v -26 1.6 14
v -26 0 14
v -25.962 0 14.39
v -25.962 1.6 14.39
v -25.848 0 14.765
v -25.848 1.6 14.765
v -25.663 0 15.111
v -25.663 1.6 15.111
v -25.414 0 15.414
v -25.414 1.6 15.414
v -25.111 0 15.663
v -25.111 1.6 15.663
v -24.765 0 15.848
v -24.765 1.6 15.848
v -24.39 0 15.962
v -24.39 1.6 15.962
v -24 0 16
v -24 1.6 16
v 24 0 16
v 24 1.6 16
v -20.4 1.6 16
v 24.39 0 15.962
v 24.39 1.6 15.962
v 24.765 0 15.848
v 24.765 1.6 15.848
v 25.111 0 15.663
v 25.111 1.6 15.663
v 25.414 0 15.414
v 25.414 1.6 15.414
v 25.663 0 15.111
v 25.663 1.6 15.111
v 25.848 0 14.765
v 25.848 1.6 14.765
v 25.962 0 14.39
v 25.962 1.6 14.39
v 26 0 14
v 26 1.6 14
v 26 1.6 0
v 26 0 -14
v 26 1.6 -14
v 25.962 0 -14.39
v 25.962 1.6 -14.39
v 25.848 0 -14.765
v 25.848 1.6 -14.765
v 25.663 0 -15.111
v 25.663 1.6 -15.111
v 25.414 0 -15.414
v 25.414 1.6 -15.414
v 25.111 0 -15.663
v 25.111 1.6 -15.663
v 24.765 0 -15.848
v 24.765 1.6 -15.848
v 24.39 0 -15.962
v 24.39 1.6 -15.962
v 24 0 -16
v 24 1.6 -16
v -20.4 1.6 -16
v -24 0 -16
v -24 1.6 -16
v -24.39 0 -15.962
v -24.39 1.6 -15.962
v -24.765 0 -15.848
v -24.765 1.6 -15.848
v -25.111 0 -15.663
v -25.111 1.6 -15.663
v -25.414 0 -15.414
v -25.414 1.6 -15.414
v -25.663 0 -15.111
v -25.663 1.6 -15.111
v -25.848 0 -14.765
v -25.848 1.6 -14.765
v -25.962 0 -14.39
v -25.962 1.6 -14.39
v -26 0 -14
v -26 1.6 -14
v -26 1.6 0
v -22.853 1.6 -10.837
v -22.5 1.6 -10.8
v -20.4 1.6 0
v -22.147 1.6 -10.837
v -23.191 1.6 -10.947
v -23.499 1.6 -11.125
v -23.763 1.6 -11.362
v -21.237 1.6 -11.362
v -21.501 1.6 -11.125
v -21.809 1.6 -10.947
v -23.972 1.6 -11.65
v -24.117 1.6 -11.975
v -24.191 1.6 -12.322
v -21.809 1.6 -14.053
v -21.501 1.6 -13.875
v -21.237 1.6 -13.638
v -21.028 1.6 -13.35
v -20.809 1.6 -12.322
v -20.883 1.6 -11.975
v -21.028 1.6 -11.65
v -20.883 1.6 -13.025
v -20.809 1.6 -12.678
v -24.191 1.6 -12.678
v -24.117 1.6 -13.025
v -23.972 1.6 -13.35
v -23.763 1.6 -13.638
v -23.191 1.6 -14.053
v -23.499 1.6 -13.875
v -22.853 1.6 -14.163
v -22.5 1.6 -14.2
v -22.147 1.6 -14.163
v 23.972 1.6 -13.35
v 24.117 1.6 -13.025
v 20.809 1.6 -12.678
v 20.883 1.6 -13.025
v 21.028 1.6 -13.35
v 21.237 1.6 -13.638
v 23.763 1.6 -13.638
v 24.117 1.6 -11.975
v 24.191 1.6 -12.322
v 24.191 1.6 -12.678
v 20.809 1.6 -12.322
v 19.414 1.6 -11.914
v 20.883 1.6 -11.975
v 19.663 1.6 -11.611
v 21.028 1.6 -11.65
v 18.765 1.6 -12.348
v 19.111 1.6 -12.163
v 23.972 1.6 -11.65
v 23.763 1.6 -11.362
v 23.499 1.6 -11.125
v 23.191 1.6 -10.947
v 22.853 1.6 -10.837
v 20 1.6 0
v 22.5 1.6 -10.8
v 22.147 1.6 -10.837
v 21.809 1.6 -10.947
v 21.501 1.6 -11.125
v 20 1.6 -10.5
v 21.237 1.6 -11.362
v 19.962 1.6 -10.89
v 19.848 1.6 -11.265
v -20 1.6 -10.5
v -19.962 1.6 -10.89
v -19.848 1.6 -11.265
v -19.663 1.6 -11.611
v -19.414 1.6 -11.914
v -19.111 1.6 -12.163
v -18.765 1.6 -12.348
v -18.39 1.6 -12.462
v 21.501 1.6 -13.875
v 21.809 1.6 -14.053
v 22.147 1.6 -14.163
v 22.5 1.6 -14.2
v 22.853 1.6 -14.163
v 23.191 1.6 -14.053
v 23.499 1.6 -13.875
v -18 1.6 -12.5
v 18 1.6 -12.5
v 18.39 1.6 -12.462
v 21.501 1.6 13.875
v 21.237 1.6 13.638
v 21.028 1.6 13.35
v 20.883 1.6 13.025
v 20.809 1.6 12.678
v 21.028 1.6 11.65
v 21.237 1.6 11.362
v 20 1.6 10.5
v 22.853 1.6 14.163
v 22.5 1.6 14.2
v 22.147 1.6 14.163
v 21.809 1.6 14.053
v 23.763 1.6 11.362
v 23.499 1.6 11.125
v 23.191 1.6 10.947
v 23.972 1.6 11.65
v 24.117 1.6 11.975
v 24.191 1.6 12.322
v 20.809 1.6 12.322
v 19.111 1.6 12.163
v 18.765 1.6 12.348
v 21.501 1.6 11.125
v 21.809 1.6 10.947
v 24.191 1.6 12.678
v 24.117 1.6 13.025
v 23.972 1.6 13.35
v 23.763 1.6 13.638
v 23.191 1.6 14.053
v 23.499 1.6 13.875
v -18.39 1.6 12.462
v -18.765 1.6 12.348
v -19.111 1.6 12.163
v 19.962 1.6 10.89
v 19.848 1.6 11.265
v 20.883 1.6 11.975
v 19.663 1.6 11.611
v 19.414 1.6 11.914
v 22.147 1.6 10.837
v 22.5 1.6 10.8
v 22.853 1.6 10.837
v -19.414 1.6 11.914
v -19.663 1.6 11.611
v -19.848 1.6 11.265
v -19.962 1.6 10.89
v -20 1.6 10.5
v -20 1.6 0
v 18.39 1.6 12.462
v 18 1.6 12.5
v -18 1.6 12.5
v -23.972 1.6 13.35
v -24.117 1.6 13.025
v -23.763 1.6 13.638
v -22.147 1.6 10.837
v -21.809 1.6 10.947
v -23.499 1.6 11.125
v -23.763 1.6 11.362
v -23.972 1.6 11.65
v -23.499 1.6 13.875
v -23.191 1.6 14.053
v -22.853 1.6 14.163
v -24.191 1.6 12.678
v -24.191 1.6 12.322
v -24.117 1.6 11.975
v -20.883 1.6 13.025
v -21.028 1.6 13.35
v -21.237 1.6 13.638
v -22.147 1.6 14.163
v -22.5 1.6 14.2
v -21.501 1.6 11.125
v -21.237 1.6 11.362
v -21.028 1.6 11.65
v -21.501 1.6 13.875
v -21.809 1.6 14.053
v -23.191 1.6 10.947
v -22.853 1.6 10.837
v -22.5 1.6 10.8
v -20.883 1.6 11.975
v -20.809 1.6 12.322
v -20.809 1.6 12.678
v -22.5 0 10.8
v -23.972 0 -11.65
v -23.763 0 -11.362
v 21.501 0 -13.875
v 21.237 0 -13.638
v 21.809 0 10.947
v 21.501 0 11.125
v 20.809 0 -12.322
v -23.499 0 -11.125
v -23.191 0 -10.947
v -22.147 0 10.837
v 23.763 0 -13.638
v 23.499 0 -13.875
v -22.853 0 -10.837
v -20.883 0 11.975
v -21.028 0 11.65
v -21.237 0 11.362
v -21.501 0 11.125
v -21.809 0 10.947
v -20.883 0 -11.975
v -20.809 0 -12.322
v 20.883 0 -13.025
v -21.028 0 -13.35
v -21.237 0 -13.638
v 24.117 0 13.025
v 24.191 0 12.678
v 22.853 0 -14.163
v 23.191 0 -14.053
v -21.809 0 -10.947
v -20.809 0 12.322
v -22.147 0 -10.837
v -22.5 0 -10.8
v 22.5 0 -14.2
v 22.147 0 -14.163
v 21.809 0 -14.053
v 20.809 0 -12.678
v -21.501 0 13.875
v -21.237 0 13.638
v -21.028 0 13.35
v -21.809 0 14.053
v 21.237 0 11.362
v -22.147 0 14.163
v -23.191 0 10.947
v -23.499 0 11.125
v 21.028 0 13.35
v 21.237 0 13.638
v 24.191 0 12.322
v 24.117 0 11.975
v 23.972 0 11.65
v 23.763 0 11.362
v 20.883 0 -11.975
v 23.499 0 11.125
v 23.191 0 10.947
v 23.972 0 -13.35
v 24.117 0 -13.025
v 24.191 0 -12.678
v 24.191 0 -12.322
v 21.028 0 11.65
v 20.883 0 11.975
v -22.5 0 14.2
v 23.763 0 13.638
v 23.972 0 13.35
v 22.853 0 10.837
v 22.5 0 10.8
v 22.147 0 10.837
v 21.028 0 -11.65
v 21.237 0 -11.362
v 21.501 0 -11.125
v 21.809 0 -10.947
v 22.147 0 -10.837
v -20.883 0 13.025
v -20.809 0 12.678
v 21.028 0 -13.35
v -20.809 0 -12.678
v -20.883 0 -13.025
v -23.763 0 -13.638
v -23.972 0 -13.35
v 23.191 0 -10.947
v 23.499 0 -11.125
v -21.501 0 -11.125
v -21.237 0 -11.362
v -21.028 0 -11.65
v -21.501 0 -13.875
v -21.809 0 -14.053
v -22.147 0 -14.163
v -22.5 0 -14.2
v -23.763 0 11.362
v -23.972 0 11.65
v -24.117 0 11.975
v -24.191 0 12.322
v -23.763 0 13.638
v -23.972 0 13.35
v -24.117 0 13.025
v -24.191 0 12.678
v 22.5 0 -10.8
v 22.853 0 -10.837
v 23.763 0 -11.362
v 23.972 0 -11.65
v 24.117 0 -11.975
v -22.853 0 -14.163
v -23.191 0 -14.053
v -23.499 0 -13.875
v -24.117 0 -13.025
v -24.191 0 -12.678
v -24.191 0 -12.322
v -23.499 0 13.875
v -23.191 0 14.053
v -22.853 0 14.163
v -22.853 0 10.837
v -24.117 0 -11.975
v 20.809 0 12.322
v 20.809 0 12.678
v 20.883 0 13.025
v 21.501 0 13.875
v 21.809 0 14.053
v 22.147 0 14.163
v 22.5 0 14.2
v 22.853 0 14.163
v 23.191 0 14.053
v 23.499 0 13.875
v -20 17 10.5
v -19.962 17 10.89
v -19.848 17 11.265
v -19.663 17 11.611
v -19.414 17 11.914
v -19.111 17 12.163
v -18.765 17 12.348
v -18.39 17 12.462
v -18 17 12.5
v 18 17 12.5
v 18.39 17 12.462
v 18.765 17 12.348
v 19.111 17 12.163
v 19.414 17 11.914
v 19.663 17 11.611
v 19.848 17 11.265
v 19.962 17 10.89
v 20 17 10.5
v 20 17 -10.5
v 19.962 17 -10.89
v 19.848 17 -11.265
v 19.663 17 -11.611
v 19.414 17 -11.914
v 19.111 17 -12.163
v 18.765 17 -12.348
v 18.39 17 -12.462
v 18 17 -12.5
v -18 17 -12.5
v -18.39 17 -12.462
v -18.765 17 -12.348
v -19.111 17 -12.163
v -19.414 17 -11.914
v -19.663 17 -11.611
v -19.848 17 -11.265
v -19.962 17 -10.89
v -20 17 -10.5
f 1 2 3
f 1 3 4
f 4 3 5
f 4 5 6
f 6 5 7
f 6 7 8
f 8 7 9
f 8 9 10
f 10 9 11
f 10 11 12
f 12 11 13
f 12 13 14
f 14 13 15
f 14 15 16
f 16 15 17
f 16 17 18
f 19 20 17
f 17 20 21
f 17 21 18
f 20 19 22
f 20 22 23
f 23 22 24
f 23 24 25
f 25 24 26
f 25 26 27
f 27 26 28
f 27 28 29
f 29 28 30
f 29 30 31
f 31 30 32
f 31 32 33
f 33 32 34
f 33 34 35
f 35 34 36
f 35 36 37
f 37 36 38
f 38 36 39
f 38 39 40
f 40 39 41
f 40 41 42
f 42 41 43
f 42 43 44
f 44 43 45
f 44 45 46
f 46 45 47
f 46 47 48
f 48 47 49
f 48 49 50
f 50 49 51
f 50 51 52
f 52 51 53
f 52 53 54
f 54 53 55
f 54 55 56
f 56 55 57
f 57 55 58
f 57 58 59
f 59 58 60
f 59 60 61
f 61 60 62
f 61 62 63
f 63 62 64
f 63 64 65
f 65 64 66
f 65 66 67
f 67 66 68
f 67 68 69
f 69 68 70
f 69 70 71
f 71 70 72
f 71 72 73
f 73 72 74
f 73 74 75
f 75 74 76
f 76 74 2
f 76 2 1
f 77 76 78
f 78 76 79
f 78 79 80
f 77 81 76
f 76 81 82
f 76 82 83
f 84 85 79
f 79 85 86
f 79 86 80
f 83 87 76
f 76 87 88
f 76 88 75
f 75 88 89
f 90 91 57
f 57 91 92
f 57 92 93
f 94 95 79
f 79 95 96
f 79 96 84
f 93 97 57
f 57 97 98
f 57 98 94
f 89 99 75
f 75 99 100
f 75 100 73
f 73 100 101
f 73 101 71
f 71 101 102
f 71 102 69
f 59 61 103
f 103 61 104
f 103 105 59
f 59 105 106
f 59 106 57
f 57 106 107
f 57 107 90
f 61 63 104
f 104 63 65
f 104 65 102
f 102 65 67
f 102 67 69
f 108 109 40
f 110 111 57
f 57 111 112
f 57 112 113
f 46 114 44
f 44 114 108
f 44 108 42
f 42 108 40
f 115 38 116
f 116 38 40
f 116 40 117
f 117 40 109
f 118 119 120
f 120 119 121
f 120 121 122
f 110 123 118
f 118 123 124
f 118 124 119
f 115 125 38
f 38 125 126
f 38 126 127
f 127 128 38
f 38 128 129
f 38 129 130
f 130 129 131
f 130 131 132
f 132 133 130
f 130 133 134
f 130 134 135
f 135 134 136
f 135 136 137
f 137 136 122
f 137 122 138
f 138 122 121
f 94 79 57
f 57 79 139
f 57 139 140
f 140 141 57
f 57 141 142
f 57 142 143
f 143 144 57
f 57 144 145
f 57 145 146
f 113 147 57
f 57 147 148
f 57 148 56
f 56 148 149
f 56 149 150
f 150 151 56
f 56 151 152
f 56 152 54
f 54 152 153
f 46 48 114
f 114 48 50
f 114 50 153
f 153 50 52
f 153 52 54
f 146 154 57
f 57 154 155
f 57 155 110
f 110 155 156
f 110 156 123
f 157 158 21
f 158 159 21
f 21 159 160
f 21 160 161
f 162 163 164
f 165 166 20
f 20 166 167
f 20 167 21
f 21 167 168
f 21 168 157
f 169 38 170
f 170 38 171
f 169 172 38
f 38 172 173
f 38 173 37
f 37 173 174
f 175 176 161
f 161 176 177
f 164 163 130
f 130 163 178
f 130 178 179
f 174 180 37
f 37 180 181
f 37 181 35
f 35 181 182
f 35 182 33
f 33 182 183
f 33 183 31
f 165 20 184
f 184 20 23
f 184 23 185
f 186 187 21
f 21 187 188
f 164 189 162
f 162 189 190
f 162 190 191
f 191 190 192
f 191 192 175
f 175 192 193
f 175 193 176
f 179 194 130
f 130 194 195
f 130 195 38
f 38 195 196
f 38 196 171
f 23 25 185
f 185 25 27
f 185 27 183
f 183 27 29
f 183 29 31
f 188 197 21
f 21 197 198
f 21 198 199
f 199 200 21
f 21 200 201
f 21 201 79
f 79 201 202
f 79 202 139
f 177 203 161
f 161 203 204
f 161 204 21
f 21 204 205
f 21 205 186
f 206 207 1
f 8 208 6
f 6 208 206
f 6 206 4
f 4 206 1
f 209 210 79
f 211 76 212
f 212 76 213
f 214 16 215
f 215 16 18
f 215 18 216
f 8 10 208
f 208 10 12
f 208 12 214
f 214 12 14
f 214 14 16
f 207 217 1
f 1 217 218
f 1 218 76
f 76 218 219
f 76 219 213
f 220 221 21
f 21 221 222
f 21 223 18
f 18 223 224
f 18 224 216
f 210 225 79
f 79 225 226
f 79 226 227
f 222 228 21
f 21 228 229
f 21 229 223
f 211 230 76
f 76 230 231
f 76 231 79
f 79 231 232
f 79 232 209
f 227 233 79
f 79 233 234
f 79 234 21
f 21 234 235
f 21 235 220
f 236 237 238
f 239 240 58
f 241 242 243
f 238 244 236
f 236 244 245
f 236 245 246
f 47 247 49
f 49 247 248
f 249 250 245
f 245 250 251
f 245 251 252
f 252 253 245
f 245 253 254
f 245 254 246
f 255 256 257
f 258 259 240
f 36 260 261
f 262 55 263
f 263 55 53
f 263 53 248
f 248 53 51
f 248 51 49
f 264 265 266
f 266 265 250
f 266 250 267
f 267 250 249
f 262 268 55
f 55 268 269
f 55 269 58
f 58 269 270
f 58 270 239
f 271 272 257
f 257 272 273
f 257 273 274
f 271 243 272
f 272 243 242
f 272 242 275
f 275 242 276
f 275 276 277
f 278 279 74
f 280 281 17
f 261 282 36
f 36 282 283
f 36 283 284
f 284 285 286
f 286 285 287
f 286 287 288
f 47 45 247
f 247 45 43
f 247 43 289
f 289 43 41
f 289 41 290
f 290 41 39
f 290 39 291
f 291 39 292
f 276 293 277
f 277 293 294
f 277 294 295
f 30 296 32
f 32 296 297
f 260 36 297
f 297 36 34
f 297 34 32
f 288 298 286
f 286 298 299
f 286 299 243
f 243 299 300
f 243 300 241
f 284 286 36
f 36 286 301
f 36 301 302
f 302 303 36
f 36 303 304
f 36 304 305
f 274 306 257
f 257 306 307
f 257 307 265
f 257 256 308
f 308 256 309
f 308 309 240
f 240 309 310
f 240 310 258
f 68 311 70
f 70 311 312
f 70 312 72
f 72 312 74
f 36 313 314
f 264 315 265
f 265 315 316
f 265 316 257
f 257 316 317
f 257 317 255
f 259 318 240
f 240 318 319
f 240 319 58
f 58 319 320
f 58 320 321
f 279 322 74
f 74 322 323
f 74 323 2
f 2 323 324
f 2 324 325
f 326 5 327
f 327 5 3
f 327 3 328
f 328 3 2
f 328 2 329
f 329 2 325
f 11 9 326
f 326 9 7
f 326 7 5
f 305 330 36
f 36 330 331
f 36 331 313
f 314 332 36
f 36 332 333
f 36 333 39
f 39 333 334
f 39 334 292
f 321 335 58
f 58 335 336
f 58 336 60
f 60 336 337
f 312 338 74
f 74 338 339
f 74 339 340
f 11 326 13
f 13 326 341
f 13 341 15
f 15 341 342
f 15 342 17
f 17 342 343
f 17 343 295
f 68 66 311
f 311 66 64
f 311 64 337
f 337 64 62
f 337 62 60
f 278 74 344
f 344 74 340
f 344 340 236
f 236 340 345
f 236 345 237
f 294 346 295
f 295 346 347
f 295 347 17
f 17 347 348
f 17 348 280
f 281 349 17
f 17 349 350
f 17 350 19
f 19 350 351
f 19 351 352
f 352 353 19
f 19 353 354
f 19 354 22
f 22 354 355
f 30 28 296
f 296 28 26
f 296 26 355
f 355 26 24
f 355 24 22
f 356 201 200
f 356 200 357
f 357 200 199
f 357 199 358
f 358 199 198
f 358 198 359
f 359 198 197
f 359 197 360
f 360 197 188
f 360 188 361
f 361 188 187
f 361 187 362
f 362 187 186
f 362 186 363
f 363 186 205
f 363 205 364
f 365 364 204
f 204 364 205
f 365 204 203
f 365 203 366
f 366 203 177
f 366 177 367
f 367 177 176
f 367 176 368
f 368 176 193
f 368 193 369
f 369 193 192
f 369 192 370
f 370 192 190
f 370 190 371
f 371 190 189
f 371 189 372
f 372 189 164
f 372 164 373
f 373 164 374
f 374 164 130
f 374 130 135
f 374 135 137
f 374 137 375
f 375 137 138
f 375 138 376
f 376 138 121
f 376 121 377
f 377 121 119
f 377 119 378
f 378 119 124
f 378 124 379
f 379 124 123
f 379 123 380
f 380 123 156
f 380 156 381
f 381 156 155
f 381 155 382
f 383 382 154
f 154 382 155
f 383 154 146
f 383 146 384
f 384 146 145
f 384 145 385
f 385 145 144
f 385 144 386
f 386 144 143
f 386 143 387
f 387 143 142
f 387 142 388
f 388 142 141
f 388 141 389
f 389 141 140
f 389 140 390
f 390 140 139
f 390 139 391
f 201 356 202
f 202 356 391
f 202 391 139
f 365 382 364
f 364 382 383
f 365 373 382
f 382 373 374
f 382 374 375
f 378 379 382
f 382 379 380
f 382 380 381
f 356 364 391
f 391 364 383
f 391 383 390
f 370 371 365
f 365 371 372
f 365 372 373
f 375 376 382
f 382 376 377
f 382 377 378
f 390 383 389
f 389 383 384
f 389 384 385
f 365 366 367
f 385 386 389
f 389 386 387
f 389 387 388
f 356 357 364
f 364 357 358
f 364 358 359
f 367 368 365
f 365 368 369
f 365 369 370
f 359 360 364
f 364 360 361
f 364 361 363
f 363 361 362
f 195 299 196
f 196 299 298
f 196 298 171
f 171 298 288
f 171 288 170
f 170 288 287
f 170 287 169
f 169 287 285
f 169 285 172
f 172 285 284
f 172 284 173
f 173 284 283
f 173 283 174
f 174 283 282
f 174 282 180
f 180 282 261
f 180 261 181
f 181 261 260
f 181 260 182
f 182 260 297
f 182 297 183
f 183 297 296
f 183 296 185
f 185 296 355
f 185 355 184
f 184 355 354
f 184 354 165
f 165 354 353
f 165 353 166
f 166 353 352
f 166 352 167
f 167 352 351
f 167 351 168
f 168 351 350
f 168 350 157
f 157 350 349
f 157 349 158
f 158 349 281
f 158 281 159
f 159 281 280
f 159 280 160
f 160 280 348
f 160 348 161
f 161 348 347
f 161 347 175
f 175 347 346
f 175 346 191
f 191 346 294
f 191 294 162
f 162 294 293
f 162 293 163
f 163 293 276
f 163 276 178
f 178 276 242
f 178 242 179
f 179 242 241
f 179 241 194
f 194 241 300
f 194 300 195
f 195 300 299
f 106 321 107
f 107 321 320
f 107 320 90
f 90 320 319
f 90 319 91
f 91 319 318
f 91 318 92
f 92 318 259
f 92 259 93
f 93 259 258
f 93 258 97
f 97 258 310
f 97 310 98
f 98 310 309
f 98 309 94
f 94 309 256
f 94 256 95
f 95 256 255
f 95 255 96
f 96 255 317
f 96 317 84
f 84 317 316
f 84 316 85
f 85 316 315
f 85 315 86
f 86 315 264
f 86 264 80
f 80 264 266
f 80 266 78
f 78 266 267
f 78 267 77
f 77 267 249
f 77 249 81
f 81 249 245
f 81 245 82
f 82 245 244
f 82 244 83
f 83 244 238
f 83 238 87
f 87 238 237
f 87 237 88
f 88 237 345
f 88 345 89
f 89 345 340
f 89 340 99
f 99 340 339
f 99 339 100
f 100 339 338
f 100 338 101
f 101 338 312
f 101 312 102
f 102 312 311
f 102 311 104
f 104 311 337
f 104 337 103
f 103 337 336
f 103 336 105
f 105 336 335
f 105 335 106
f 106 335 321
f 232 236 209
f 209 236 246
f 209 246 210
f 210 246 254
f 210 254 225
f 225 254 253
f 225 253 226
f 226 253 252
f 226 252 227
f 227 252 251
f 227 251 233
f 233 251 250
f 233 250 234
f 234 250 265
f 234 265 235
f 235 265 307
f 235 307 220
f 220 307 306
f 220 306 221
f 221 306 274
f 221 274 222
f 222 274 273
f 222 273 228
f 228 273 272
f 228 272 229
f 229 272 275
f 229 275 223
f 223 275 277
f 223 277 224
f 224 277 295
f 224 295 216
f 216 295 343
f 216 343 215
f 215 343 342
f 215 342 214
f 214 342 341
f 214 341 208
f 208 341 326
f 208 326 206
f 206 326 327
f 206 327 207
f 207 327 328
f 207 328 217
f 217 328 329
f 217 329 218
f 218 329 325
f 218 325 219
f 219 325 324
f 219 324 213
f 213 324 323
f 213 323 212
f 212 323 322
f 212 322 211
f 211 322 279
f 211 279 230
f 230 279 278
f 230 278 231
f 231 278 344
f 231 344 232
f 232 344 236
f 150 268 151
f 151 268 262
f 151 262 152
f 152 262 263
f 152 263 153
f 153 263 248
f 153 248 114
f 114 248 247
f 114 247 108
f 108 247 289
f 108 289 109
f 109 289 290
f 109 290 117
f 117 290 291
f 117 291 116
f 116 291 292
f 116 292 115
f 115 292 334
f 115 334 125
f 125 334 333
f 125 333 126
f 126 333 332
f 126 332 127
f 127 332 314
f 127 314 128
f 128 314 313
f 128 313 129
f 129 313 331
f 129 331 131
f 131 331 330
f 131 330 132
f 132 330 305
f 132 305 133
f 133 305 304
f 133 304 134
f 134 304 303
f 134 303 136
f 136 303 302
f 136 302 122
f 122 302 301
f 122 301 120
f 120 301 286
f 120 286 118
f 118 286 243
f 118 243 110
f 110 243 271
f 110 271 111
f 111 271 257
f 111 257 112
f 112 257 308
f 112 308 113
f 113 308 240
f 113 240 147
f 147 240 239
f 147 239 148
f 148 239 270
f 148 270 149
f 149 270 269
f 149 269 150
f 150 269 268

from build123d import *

# Parameters (mm, degrees)
BOSS_EXTRUDE1_DEPTH = 1.6
BOSS_EXTRUDE2_DEPTH = 15.4
SKETCH3_R           = 1.7
CUT_EXTRUDE1_DEPTH  = 1.6


with BuildPart() as part:
    # Sketch1 → Boss-Extrude1 (new body)
    with BuildSketch(Plane(origin=(0, 0, 0), x_dir=(1, 0, 0), z_dir=(0, 1, 0))):
        with BuildLine():
            Line((-24, -16), (24, -16))
            ThreePointArc((24, -16), (25.414213562, -15.414213562), (26, -14))
            Line((26, -14), (26, 14))
            ThreePointArc((26, 14), (25.414213562, 15.414213562), (24, 16))
            Line((24, 16), (-24, 16))
            ThreePointArc((-24, 16), (-25.414213562, 15.414213562), (-26, 14))
            Line((-26, 14), (-26, -14))
            ThreePointArc((-26, -14), (-25.414213562, -15.414213562), (-24, -16))
        make_face()
    extrude(amount=BOSS_EXTRUDE1_DEPTH)

    # Sketch2 → Boss-Extrude2 (add)
    with BuildSketch(Plane(origin=(0, 1.6, 0), x_dir=(1, 0, 0), z_dir=(0, 1, 0))):
        with BuildLine():
            Line((-18, -12.5), (18, -12.5))
            ThreePointArc((18, -12.5), (19.414213562, -11.914213562), (20, -10.5))
            Line((20, -10.5), (20, 10.5))
            ThreePointArc((20, 10.5), (19.414213562, 11.914213562), (18, 12.5))
            Line((18, 12.5), (-18, 12.5))
            ThreePointArc((-18, 12.5), (-19.414213562, 11.914213562), (-20, 10.5))
            Line((-20, 10.5), (-20, -10.5))
            ThreePointArc((-20, -10.5), (-19.414213562, -11.914213562), (-18, -12.5))
        make_face()
    extrude(amount=BOSS_EXTRUDE2_DEPTH)

    # Sketch3 → Cut-Extrude1 (cut)
    with BuildSketch(Plane(origin=(0, 0, 0), x_dir=(1, 0, 0), z_dir=(0, 1, 0))):
        with Locations(Location((22.5, -12.5, 0), (0, 0, 270))):
            Circle(SKETCH3_R)
        with Locations(Location((22.5, 12.5, 0), (0, 0, 270))):
            Circle(SKETCH3_R)
        with Locations(Location((-22.5, -12.5, 0), (0, 0, 270))):
            Circle(SKETCH3_R)
        with Locations(Location((-22.5, 12.5, 0), (0, 0, 270))):
            Circle(SKETCH3_R)
    extrude(amount=CUT_EXTRUDE1_DEPTH, mode=Mode.SUBTRACT)


solid = part.part
